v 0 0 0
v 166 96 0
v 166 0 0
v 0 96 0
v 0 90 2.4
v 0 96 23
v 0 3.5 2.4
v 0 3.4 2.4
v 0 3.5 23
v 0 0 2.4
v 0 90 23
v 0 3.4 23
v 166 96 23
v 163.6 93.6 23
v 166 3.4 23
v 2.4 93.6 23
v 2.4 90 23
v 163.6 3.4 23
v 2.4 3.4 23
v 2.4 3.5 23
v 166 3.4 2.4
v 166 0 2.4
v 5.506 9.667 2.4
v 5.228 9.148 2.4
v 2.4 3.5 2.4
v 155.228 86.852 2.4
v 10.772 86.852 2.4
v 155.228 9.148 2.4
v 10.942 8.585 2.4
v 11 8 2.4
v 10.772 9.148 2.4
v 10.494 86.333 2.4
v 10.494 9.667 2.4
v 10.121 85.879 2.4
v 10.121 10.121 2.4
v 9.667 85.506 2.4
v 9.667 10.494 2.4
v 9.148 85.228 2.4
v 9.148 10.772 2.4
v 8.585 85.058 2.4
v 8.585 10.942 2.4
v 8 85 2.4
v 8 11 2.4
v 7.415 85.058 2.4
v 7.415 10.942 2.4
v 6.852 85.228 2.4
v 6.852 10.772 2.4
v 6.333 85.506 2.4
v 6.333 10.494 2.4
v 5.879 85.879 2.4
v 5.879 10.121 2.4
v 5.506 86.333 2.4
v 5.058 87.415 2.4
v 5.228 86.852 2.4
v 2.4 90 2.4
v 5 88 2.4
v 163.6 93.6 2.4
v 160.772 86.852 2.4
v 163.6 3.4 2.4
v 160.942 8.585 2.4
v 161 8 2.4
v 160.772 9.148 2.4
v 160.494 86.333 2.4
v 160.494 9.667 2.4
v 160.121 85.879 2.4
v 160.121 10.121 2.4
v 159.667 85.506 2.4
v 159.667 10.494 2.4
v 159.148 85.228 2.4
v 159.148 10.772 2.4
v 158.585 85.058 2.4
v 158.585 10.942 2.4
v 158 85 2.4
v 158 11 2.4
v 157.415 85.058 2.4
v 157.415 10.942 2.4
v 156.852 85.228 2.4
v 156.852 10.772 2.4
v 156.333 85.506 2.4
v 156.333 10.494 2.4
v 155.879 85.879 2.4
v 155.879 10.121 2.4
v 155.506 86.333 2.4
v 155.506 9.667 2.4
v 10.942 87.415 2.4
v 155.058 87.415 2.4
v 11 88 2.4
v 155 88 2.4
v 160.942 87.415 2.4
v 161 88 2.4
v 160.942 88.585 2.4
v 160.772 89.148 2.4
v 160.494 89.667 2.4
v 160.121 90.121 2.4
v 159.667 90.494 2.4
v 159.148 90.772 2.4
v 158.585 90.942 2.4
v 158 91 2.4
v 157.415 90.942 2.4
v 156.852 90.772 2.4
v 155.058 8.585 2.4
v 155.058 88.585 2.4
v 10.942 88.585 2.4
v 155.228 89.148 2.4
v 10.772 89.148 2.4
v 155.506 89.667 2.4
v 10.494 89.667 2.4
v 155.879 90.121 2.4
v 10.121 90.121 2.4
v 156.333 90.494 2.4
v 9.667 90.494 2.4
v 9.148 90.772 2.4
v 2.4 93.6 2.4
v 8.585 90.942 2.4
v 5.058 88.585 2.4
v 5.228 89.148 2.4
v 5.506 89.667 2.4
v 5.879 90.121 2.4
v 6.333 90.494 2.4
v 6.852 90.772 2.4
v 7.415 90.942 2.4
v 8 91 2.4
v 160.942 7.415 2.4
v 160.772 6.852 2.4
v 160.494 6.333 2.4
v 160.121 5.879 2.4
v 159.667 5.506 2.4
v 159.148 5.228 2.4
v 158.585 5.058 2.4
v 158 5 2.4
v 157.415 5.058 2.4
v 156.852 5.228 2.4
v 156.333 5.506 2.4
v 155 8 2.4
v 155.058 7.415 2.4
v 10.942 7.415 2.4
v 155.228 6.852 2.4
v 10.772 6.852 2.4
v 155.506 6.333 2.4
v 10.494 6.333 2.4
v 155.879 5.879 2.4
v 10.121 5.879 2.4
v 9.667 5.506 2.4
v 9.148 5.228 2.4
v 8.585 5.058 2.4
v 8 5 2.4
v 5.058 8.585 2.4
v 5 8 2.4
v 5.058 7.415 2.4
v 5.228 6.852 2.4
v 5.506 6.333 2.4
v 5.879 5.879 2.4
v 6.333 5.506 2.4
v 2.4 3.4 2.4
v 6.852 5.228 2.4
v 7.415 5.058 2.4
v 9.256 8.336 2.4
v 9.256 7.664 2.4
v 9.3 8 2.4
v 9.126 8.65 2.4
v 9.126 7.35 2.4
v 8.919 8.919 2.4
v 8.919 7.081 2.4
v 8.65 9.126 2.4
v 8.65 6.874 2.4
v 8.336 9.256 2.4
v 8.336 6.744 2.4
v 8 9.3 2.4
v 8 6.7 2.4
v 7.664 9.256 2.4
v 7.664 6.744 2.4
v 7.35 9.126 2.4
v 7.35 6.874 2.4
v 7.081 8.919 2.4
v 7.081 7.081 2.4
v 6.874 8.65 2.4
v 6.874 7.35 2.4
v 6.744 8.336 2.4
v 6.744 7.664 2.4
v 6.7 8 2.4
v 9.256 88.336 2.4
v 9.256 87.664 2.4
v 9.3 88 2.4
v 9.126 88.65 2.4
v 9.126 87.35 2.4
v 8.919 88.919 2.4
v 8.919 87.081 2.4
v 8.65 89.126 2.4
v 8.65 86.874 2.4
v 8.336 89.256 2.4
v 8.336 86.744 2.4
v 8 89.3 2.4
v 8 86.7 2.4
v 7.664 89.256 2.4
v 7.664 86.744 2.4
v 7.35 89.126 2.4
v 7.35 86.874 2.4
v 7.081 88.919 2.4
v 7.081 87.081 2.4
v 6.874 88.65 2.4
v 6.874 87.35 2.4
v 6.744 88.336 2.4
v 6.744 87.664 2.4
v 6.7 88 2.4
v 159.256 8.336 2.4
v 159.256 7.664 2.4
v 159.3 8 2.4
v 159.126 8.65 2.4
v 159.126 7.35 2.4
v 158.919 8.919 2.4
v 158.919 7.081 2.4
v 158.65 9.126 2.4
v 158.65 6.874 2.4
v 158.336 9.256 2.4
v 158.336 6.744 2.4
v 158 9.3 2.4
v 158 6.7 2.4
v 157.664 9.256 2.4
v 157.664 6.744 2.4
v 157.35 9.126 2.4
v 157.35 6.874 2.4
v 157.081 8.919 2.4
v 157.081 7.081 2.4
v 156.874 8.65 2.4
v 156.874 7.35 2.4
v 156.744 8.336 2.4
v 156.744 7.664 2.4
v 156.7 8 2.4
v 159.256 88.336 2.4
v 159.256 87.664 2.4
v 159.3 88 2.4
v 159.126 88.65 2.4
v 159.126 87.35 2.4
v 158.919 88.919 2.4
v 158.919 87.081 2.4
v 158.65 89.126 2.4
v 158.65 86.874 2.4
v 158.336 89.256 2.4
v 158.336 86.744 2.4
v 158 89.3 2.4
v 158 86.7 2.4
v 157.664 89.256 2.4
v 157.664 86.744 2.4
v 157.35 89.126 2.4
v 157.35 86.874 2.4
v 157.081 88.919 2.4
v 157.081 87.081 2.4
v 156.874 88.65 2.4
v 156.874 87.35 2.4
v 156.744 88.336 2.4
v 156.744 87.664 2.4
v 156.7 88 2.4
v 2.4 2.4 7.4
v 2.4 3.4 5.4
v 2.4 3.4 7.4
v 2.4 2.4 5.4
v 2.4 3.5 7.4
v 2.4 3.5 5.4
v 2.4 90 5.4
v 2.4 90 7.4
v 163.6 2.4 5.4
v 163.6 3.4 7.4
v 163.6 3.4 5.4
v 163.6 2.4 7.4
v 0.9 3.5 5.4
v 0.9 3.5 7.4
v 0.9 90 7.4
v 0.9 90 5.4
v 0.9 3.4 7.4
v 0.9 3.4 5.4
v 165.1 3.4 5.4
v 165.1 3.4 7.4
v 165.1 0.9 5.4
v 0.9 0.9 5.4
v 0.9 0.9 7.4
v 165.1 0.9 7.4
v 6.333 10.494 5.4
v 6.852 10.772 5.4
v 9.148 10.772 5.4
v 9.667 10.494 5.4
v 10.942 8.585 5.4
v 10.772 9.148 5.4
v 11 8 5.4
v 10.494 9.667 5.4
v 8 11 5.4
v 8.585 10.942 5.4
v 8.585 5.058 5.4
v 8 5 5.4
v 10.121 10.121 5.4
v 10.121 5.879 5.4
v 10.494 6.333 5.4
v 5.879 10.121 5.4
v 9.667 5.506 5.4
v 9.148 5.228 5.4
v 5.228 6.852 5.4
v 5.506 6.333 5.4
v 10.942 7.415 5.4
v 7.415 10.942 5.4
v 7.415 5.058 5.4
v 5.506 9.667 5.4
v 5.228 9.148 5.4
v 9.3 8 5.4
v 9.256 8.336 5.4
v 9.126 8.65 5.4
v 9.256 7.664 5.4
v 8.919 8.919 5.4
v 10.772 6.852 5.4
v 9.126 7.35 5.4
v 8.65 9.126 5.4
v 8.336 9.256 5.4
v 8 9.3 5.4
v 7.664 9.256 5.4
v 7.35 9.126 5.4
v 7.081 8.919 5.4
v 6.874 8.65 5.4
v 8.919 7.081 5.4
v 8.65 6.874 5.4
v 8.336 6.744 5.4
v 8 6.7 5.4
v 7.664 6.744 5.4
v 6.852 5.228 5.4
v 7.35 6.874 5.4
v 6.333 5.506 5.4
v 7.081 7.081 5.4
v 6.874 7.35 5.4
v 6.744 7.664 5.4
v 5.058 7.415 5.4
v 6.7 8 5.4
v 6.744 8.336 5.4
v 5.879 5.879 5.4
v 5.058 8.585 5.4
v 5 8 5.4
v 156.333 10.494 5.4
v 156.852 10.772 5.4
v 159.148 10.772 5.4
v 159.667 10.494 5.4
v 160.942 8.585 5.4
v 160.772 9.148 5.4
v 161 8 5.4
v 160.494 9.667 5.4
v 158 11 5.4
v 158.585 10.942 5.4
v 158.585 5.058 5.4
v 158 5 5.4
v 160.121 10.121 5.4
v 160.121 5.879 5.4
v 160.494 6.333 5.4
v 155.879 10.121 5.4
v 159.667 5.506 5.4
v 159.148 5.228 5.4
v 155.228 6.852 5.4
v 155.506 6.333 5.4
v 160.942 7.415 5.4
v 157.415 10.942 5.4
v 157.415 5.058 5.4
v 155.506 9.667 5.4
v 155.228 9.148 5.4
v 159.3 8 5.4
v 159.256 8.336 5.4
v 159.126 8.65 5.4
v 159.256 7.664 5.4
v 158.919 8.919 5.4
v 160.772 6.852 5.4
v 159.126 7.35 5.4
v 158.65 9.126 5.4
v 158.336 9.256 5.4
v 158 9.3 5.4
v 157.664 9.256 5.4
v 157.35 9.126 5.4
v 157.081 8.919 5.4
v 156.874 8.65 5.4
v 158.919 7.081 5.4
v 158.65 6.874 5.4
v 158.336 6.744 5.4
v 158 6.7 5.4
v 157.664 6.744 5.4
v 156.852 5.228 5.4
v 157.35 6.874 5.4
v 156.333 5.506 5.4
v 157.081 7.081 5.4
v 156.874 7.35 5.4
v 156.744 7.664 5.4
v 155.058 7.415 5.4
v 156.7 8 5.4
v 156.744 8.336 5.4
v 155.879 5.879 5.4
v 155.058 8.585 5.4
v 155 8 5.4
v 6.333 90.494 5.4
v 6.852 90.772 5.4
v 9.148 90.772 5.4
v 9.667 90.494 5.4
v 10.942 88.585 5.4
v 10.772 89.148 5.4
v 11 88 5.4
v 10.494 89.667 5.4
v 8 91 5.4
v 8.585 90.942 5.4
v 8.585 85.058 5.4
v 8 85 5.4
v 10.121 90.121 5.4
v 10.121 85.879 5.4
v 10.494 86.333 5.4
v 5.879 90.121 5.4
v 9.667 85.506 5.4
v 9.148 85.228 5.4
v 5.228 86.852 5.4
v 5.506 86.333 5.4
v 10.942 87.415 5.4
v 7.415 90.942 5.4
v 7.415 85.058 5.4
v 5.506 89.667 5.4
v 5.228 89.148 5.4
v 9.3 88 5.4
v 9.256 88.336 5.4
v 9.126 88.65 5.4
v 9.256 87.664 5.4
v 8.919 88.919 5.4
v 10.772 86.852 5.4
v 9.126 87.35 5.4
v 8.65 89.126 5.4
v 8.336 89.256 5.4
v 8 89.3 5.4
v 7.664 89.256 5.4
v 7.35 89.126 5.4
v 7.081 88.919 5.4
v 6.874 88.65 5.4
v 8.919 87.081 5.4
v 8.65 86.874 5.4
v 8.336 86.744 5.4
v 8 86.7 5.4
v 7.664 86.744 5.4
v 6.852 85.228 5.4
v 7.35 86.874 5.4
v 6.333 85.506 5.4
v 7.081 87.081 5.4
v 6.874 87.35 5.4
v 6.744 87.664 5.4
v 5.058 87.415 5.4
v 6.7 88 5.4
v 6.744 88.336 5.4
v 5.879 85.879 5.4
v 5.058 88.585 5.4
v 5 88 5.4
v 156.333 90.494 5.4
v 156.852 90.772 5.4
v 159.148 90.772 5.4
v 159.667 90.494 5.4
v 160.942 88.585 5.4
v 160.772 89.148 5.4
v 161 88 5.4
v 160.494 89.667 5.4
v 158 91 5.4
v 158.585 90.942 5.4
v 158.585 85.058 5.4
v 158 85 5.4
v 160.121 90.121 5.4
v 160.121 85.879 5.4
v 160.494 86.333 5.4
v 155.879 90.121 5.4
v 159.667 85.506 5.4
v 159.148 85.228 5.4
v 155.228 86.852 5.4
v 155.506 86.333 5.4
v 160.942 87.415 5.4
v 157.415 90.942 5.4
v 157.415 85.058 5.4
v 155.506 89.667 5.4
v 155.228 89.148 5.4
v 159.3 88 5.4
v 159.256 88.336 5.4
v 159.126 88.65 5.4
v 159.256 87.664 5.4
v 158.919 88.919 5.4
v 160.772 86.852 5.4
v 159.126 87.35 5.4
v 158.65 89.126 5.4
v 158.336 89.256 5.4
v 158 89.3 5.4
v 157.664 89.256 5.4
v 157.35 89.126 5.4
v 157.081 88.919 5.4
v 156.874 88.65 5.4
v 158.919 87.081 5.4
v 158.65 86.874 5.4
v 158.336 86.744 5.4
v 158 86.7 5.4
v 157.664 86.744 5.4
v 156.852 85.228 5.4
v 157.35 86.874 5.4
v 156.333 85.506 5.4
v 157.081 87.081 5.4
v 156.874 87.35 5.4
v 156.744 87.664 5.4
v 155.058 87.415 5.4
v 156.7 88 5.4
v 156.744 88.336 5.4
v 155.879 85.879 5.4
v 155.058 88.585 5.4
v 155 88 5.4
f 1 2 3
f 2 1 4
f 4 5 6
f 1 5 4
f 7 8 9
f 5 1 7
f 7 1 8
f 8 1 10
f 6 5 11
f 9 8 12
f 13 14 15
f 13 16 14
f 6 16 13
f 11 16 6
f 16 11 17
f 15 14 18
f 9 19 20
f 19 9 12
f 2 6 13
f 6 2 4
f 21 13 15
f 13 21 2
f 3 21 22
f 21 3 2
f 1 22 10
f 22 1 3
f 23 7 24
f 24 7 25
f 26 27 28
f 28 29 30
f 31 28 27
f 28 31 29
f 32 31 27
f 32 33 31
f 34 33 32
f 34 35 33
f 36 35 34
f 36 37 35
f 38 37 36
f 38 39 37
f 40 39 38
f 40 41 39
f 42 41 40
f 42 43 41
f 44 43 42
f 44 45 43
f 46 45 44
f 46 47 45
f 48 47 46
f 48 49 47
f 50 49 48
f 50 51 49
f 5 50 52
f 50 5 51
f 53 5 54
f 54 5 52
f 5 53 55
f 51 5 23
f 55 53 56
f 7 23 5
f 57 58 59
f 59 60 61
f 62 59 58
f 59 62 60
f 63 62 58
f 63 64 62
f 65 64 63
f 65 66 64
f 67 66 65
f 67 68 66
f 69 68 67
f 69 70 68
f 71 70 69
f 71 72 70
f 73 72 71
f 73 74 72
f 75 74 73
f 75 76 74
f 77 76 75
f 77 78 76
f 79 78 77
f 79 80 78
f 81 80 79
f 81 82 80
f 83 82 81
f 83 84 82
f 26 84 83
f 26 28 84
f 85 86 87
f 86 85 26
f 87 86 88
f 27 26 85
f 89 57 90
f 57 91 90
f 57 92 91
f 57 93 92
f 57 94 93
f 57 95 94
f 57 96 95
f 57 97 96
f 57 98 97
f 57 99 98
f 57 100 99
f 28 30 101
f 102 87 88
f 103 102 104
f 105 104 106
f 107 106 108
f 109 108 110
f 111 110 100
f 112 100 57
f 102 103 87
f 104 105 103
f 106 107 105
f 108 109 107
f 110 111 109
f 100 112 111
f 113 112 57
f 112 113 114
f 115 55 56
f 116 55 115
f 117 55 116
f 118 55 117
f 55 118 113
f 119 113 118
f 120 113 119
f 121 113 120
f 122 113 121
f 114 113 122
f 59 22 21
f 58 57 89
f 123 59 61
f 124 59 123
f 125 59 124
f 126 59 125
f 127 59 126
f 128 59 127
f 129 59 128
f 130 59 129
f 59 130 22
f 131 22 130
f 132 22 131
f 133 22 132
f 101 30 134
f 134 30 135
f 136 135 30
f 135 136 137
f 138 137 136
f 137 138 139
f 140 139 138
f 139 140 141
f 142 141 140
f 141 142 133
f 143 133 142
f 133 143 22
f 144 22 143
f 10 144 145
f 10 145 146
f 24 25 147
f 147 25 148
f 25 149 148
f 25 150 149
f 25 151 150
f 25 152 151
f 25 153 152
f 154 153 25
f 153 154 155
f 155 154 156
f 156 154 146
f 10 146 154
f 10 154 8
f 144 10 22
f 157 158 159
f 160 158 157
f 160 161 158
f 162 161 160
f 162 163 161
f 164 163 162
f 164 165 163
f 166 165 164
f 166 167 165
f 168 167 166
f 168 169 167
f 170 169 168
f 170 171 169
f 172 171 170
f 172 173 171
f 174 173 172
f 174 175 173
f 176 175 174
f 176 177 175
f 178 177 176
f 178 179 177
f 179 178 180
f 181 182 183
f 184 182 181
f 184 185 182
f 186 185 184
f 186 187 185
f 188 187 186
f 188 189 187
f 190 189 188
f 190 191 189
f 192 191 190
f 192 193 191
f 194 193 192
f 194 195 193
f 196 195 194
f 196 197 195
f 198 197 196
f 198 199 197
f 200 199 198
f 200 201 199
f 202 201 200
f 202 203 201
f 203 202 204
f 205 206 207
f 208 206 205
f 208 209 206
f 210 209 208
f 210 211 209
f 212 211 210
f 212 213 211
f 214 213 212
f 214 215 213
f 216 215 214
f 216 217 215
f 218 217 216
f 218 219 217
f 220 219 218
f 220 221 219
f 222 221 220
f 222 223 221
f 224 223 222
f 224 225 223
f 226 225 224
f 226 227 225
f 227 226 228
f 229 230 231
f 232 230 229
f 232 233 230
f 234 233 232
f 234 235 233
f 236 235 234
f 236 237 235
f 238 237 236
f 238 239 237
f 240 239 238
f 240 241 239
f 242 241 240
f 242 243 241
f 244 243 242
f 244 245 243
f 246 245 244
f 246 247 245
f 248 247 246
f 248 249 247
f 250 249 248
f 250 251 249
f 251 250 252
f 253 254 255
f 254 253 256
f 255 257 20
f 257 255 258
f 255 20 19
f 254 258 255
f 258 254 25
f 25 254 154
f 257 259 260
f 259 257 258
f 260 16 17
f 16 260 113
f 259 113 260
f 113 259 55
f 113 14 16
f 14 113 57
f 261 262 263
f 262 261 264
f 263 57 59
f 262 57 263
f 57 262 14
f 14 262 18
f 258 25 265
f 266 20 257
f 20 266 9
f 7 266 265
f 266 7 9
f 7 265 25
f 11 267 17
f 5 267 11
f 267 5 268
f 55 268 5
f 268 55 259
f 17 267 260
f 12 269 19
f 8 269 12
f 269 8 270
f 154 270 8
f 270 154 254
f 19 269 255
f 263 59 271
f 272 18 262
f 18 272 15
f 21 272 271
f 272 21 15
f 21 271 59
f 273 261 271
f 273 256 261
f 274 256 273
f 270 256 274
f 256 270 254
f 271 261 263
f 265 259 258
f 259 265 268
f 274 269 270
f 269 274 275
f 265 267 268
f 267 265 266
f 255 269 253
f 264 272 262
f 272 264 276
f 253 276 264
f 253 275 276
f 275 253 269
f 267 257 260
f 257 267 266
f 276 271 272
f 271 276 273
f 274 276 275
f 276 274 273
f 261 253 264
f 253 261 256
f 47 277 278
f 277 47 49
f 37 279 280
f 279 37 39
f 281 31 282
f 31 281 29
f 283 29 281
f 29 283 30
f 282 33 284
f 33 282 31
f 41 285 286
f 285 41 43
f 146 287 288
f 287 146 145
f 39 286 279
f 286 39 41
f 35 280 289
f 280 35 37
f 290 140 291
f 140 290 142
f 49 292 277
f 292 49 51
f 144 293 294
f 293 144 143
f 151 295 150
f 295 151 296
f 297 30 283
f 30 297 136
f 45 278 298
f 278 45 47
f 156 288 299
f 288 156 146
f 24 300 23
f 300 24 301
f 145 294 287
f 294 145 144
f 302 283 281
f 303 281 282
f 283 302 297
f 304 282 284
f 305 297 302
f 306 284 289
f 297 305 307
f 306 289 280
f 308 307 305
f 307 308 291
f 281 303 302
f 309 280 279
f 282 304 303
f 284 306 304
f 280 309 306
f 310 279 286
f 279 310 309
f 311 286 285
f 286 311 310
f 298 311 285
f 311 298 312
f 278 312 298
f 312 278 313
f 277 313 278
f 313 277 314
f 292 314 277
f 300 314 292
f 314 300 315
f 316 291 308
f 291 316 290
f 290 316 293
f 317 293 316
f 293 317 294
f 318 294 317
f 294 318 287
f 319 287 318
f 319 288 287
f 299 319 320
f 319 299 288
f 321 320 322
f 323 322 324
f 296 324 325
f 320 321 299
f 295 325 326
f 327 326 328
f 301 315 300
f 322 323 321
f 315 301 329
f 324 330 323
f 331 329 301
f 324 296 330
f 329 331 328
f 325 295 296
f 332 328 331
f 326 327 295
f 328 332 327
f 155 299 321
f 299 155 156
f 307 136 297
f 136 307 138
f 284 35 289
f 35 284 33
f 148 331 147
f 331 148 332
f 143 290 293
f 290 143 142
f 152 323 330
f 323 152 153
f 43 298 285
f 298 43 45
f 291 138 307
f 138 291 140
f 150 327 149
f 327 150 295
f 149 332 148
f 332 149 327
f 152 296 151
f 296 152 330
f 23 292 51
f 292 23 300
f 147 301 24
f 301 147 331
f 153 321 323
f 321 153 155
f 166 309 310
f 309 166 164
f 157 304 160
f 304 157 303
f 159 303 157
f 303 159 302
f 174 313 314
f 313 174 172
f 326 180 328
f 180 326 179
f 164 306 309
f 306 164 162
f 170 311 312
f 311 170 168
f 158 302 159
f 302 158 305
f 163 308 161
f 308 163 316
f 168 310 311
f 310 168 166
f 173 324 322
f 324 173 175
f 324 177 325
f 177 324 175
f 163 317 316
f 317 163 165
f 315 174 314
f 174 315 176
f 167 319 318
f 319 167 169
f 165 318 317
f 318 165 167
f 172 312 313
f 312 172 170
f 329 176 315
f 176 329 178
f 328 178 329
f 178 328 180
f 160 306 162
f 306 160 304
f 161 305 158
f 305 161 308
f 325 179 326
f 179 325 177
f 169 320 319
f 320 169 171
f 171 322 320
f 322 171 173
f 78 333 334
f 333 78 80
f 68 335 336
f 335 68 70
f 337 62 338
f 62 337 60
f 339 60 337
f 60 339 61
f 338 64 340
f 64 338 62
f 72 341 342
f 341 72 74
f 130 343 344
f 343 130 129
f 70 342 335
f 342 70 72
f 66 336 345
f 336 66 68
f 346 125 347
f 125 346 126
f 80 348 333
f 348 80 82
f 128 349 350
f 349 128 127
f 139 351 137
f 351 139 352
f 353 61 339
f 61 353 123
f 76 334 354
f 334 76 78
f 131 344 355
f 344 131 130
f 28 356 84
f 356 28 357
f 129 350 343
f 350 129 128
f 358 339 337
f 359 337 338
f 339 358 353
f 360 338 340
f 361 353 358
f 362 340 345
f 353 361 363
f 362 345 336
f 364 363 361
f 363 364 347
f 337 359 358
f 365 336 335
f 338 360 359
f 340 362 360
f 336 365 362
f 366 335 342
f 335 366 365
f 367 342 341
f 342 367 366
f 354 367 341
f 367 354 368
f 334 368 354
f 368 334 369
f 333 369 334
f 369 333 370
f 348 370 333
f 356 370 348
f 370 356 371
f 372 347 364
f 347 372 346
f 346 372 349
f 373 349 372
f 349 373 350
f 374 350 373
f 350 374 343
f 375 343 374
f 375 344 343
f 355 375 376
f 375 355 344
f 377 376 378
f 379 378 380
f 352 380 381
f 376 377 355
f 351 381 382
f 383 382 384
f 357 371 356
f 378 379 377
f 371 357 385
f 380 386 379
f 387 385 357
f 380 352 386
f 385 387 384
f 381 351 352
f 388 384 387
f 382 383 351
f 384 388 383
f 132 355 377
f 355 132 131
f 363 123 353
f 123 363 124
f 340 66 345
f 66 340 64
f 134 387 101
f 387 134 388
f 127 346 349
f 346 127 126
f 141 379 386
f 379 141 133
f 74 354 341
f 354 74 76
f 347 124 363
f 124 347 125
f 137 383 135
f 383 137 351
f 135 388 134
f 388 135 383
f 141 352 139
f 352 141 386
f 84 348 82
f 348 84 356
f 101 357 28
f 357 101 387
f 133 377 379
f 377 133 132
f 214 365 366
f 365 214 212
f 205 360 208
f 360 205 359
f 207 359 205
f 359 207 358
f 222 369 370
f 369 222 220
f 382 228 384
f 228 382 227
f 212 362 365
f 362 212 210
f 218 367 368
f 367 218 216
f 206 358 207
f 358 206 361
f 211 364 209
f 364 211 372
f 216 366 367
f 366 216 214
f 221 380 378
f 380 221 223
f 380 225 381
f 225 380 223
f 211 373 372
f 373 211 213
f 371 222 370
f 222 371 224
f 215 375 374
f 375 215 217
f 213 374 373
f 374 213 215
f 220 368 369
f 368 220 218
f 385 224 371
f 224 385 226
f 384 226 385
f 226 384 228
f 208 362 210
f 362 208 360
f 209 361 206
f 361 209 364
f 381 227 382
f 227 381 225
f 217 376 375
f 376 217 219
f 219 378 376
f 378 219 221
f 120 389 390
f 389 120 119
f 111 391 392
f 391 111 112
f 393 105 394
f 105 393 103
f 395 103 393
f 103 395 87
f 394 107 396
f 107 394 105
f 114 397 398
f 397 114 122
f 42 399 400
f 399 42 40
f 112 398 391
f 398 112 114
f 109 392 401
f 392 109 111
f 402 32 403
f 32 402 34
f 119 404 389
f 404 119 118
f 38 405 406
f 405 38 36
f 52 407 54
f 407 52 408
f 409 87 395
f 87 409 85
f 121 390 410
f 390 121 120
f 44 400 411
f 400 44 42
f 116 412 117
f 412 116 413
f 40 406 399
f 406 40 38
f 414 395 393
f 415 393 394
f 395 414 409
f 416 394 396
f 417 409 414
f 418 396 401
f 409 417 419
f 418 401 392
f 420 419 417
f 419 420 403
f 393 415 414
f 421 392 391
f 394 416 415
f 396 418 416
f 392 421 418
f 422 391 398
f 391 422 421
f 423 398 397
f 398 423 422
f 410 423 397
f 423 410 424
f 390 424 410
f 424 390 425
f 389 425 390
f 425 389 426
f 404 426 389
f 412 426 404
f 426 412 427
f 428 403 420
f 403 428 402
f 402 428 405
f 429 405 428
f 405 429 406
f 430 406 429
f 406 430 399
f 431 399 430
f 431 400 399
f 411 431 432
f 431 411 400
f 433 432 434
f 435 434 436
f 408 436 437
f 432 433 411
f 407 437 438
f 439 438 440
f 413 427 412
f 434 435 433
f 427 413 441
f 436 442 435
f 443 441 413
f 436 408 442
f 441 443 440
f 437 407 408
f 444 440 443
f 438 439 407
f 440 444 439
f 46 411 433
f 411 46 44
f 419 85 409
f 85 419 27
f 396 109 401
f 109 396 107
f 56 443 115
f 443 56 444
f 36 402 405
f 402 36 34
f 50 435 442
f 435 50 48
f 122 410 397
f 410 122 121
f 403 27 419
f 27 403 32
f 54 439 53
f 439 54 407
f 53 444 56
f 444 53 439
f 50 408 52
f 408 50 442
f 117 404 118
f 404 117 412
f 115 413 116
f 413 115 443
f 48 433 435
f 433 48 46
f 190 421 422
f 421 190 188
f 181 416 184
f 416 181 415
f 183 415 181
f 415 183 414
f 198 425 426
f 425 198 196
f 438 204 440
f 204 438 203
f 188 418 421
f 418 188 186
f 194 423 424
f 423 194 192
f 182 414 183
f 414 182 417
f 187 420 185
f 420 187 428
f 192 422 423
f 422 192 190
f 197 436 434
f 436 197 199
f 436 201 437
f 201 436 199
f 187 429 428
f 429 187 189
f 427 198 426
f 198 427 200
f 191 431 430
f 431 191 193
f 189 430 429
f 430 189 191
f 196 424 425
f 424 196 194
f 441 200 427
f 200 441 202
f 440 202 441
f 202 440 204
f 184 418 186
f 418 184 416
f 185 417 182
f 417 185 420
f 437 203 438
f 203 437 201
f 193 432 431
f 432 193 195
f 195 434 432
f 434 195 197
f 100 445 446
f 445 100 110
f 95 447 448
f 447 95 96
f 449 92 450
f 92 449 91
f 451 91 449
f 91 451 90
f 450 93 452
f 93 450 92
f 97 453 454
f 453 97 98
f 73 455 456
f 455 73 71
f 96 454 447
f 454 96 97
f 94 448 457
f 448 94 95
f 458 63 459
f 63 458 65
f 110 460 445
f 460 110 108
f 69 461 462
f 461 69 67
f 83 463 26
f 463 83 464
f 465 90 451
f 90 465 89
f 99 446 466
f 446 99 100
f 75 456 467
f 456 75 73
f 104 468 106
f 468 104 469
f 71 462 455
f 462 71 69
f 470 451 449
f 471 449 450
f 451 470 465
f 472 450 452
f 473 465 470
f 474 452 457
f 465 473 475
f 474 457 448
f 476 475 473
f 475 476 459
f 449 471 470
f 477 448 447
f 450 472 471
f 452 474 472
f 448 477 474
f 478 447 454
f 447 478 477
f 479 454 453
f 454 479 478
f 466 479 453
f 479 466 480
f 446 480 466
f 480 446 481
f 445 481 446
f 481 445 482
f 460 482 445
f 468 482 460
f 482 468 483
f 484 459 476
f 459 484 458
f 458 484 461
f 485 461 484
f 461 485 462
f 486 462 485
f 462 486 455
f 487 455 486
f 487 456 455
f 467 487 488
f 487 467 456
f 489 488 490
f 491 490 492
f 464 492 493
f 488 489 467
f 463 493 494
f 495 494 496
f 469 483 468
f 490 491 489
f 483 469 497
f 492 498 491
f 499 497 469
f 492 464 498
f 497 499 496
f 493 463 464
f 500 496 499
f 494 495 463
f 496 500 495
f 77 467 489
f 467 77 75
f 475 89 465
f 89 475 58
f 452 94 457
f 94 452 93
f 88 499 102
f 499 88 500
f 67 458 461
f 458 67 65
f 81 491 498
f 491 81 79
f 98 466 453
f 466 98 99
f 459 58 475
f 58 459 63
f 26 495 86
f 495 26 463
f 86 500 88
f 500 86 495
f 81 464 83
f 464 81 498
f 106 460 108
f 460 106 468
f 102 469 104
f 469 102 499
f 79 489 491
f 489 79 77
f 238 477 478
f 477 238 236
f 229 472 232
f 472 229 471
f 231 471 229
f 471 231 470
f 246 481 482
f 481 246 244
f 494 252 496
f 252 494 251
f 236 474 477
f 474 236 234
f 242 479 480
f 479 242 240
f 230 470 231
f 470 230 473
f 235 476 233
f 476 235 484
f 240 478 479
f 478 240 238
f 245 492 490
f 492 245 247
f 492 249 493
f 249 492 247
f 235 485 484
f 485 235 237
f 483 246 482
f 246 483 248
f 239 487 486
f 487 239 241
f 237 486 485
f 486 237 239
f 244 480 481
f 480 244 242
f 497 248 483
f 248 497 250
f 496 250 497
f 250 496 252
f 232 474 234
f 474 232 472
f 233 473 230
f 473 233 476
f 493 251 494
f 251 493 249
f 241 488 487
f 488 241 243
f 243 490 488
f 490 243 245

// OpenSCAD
// QMTECH XC7K325T Dev Board -- open-top protective tray
// Parametric OpenSCAD, 3D-print friendly (FDM, no supports needed).
//
// Source: "QMTECH XC7K325T DEV BOARD USER MANUAL V01" Figure 2-1
// (board outline: 160mm x 90mm) and the manual's cover-page top-view
// photo (connector layout).
//
// ============================================================
// DESIGN DECISIONS -- read before printing
// ============================================================
// 1. OPEN TOP, by design, not an oversight. The manual documents a
//    Raspberry-Pi-CM4-class module plugging in near the top edge via
//    a tall card-edge connector, plus 3 pin headers, a DC barrel jack,
//    a micro-USB port, and a switch cluster all along that same top
//    edge -- none of their exact positions or the CM4+heatsink stack
//    height are in the manual's dimensioned drawing. Rather than guess
//    cutout Z-heights that might not fit, the whole top edge is left
//    open. This also means: no cutouts needed along the bottom edge
//    either -- that edge's long pin header (visible in Figure 2-1)
//    has pins pointing straight up, not out sideways, so an open top
//    already clears it.
// 2. Cutout windows ARE modeled on the LEFT edge only, for the six
//    connectors clearly visible protruding sideways in the manual's
//    cover photo (top to bottom): HDMI, HDMI, microSD/TF, USB-A,
//    USB-A, RJ45 Ethernet. Their Y positions below are estimated
//    PROPORTIONALLY from that photo, not measured -- each window is
//    made generously oversized (see cutout_margin) specifically to
//    absorb that uncertainty. Nudge connector_positions_mm below if
//    a window doesn't line up once you have the board in hand.
// 3. Corner standoffs are a SECONDARY, optional fixation. The PCB's
//    primary retention is the perimeter lip (a step the board simply
//    drops onto), which works regardless of where the real mounting
//    holes are. standoff_inset_mm below is a generic default (NOT
//    transcribed with confidence from the manual's dimension drawing,
//    whose leader lines were not legible enough to trust precisely)
//    -- treat the standoffs as "nice if they land right," not load-
//    bearing. If they miss, the lip alone still holds the board.
// 4. Print a quick low-infill fit-check of just the outline first
//    (or trim height down to ~5mm) before committing to a full detail
//    print, given the estimates above.
// ============================================================

// ---- Board ----
board_length   = 160;   // X, the manual's Figure 2-1 dimension
board_width    = 90;    // Y
board_thickness = 1.6;  // standard PCB thickness

// ---- Fit tolerances ----
fit_gap        = 0.6;   // extra clearance around the board footprint, all sides
lip_ledge      = 1.5;   // how far the retaining lip overlaps the board edge
lip_thickness  = 2.0;   // Z height of the lip step the board rests on

// ---- Tray shell ----
wall_thickness  = 2.4;
floor_thickness = 2.4;
standoff_clearance = 3.0; // gap under the board for bottom-side components/solder
wall_height     = 16.0;   // clears USB-A (~11mm) and RJ42 (~13-14mm) with margin;
                          // NOT validated against the CM4/top-edge stack (moot -- open top)

// ---- Corner standoffs (secondary fixation, see note 3 above) ----
enable_standoffs   = true;
standoff_inset_mm  = 5;    // generic default, NOT read off the manual with confidence
standoff_od        = 6.0;
standoff_pilot_od  = 2.6;  // pilot hole for an M3 self-tapping/heat-set screw

// ---- Left-edge connector cutouts (see note 2 above) ----
cutout_margin = 3.0; // each window is oversized by this much on every side, to
                      // absorb position uncertainty -- deliberately generous

// [name, y_center_mm_from_front_left_corner, window_height_mm]
// Y estimated proportionally along the 90mm left edge from the manual's
// cover photo stacking order (top to bottom): HDMI, HDMI, TF, USB, USB, RJ45.
connector_positions_mm = [
    ["HDMI_1", 10,  13],
    ["HDMI_2", 24,  13],
    ["TF_CARD", 40,  9],
    ["USB_1",   54, 16],  // stacked dual USB-A, modeled as one tall window
    ["USB_2",   54, 16],  // (duplicate center is fine -- union just merges)
    ["RJ45",    76, 16],
];

// ============================================================
// Derived geometry
// ============================================================
outer_length = board_length + 2*(fit_gap + wall_thickness);
outer_width  = board_width  + 2*(fit_gap + wall_thickness);
tray_height  = floor_thickness + standoff_clearance + board_thickness + wall_height;

lip_z = floor_thickness + standoff_clearance; // board rests here

// NOTE: corners are deliberately square (no hull()/rounded_rect()) --
// an earlier hull()-of-circles rounded-corner version silently produced
// CGAL boolean geometry that did not intersect correctly with the
// cutout cubes below (subtracting them changed the mesh by ~0 vertices,
// confirmed by isolated A/B testing). Plain square() corners are also
// simpler and no worse for FDM printing (no overhangs either way).

module tray_shell() {
    difference() {
        // outer block
        linear_extrude(height = tray_height)
            square([outer_length, outer_width]);

        // hollow out the interior (board pocket + open top)
        translate([wall_thickness, wall_thickness, floor_thickness])
            linear_extrude(height = tray_height)
                square([outer_length - 2*wall_thickness,
                        outer_width  - 2*wall_thickness]);
    }
}

// An inward-facing ridge on all 4 walls at lip_z -- the board (dropped
// in from the open top) rests on this instead of falling to the floor.
module retaining_lip_ridge() {
    ridge_w = lip_ledge;
    z0 = lip_z;
    inset = wall_thickness - ridge_w; // must match the inner-cut translate below
    translate([0,0,z0])
    difference() {
        translate([inset, inset, 0])
            linear_extrude(height = lip_thickness)
                square([outer_length - 2*inset,
                        outer_width  - 2*inset]);
        translate([0,0,-1])
        linear_extrude(height = lip_thickness + 2)
            translate([wall_thickness, wall_thickness])
                square([outer_length - 2*wall_thickness,
                        outer_width  - 2*wall_thickness]);
    }
}

module left_edge_cutouts() {
    // Left edge of the *board* sits at x = wall_thickness + fit_gap.
    // Cut generously-oversized windows through the left wall (X=0 face)
    // at each connector's estimated Y (measured from the board's own
    // front-left corner, i.e. Y=0 at the board edge -- which is also
    // where the top edge below starts, matching the manual photo's
    // HDMI-stack corner).
    for (c = connector_positions_mm) {
        y_center = wall_thickness + fit_gap + c[1];
        h = c[2] + 2*cutout_margin;
        translate([-1, y_center - h/2, lip_z - cutout_margin])
            cube([wall_thickness + 2, h, wall_height + cutout_margin + 2]);
    }
}

module top_edge_open() {
    // The Y=0 wall (full X span) is removed entirely, not just windowed:
    // this is the edge the manual's cover photo shows hosting the CM4
    // card-edge connector, 3 pin headers, a DC barrel jack, a micro-USB
    // port and a switch cluster -- too many uncertain positions (and, for
    // the CM4, an unknown module+heatsink stack height) to safely window
    // individually. It shares its X=0 corner with left_edge_cutouts()'s
    // Y=0 origin above, matching the manual photo's HDMI corner.
    translate([-1, -1, lip_z - cutout_margin])
        cube([outer_length + 2, wall_thickness + 2, wall_height + cutout_margin + 2]);
}

module corner_standoff(x, y) {
    fuse_eps = 0.05; // guarantee real overlap with the floor, not a coincident face
    translate([x, y, floor_thickness - fuse_eps])
        difference() {
            cylinder(h = standoff_clearance + fuse_eps, d = standoff_od, $fn = 32);
            translate([0,0,-1])
                cylinder(h = standoff_clearance + fuse_eps + 2, d = standoff_pilot_od, $fn = 24);
        }
}

module standoffs() {
    if (enable_standoffs) {
        bx = wall_thickness + fit_gap + standoff_inset_mm;
        by = wall_thickness + fit_gap + standoff_inset_mm;
        ex = wall_thickness + fit_gap + board_length - standoff_inset_mm;
        ey = wall_thickness + fit_gap + board_width  - standoff_inset_mm;
        corner_standoff(bx, by);
        corner_standoff(ex, by);
        corner_standoff(bx, ey);
        corner_standoff(ex, ey);
    }
}

module case_body() {
    union() {
        difference() {
            tray_shell();
            union() {
                left_edge_cutouts();
                top_edge_open();
            }
        }
        retaining_lip_ridge();
        standoffs();
    }
}

case_body();

// ---- Reference: board footprint ghost, for visual fit-check in the
// OpenSCAD preview only (comment out %board_ghost(); line to remove
// from render/export). ----
module board_ghost() {
    translate([wall_thickness + fit_gap, wall_thickness + fit_gap, lip_z])
        color([0,1,0,0.35])
        cube([board_length, board_width, board_thickness]);
}
%board_ghost();
